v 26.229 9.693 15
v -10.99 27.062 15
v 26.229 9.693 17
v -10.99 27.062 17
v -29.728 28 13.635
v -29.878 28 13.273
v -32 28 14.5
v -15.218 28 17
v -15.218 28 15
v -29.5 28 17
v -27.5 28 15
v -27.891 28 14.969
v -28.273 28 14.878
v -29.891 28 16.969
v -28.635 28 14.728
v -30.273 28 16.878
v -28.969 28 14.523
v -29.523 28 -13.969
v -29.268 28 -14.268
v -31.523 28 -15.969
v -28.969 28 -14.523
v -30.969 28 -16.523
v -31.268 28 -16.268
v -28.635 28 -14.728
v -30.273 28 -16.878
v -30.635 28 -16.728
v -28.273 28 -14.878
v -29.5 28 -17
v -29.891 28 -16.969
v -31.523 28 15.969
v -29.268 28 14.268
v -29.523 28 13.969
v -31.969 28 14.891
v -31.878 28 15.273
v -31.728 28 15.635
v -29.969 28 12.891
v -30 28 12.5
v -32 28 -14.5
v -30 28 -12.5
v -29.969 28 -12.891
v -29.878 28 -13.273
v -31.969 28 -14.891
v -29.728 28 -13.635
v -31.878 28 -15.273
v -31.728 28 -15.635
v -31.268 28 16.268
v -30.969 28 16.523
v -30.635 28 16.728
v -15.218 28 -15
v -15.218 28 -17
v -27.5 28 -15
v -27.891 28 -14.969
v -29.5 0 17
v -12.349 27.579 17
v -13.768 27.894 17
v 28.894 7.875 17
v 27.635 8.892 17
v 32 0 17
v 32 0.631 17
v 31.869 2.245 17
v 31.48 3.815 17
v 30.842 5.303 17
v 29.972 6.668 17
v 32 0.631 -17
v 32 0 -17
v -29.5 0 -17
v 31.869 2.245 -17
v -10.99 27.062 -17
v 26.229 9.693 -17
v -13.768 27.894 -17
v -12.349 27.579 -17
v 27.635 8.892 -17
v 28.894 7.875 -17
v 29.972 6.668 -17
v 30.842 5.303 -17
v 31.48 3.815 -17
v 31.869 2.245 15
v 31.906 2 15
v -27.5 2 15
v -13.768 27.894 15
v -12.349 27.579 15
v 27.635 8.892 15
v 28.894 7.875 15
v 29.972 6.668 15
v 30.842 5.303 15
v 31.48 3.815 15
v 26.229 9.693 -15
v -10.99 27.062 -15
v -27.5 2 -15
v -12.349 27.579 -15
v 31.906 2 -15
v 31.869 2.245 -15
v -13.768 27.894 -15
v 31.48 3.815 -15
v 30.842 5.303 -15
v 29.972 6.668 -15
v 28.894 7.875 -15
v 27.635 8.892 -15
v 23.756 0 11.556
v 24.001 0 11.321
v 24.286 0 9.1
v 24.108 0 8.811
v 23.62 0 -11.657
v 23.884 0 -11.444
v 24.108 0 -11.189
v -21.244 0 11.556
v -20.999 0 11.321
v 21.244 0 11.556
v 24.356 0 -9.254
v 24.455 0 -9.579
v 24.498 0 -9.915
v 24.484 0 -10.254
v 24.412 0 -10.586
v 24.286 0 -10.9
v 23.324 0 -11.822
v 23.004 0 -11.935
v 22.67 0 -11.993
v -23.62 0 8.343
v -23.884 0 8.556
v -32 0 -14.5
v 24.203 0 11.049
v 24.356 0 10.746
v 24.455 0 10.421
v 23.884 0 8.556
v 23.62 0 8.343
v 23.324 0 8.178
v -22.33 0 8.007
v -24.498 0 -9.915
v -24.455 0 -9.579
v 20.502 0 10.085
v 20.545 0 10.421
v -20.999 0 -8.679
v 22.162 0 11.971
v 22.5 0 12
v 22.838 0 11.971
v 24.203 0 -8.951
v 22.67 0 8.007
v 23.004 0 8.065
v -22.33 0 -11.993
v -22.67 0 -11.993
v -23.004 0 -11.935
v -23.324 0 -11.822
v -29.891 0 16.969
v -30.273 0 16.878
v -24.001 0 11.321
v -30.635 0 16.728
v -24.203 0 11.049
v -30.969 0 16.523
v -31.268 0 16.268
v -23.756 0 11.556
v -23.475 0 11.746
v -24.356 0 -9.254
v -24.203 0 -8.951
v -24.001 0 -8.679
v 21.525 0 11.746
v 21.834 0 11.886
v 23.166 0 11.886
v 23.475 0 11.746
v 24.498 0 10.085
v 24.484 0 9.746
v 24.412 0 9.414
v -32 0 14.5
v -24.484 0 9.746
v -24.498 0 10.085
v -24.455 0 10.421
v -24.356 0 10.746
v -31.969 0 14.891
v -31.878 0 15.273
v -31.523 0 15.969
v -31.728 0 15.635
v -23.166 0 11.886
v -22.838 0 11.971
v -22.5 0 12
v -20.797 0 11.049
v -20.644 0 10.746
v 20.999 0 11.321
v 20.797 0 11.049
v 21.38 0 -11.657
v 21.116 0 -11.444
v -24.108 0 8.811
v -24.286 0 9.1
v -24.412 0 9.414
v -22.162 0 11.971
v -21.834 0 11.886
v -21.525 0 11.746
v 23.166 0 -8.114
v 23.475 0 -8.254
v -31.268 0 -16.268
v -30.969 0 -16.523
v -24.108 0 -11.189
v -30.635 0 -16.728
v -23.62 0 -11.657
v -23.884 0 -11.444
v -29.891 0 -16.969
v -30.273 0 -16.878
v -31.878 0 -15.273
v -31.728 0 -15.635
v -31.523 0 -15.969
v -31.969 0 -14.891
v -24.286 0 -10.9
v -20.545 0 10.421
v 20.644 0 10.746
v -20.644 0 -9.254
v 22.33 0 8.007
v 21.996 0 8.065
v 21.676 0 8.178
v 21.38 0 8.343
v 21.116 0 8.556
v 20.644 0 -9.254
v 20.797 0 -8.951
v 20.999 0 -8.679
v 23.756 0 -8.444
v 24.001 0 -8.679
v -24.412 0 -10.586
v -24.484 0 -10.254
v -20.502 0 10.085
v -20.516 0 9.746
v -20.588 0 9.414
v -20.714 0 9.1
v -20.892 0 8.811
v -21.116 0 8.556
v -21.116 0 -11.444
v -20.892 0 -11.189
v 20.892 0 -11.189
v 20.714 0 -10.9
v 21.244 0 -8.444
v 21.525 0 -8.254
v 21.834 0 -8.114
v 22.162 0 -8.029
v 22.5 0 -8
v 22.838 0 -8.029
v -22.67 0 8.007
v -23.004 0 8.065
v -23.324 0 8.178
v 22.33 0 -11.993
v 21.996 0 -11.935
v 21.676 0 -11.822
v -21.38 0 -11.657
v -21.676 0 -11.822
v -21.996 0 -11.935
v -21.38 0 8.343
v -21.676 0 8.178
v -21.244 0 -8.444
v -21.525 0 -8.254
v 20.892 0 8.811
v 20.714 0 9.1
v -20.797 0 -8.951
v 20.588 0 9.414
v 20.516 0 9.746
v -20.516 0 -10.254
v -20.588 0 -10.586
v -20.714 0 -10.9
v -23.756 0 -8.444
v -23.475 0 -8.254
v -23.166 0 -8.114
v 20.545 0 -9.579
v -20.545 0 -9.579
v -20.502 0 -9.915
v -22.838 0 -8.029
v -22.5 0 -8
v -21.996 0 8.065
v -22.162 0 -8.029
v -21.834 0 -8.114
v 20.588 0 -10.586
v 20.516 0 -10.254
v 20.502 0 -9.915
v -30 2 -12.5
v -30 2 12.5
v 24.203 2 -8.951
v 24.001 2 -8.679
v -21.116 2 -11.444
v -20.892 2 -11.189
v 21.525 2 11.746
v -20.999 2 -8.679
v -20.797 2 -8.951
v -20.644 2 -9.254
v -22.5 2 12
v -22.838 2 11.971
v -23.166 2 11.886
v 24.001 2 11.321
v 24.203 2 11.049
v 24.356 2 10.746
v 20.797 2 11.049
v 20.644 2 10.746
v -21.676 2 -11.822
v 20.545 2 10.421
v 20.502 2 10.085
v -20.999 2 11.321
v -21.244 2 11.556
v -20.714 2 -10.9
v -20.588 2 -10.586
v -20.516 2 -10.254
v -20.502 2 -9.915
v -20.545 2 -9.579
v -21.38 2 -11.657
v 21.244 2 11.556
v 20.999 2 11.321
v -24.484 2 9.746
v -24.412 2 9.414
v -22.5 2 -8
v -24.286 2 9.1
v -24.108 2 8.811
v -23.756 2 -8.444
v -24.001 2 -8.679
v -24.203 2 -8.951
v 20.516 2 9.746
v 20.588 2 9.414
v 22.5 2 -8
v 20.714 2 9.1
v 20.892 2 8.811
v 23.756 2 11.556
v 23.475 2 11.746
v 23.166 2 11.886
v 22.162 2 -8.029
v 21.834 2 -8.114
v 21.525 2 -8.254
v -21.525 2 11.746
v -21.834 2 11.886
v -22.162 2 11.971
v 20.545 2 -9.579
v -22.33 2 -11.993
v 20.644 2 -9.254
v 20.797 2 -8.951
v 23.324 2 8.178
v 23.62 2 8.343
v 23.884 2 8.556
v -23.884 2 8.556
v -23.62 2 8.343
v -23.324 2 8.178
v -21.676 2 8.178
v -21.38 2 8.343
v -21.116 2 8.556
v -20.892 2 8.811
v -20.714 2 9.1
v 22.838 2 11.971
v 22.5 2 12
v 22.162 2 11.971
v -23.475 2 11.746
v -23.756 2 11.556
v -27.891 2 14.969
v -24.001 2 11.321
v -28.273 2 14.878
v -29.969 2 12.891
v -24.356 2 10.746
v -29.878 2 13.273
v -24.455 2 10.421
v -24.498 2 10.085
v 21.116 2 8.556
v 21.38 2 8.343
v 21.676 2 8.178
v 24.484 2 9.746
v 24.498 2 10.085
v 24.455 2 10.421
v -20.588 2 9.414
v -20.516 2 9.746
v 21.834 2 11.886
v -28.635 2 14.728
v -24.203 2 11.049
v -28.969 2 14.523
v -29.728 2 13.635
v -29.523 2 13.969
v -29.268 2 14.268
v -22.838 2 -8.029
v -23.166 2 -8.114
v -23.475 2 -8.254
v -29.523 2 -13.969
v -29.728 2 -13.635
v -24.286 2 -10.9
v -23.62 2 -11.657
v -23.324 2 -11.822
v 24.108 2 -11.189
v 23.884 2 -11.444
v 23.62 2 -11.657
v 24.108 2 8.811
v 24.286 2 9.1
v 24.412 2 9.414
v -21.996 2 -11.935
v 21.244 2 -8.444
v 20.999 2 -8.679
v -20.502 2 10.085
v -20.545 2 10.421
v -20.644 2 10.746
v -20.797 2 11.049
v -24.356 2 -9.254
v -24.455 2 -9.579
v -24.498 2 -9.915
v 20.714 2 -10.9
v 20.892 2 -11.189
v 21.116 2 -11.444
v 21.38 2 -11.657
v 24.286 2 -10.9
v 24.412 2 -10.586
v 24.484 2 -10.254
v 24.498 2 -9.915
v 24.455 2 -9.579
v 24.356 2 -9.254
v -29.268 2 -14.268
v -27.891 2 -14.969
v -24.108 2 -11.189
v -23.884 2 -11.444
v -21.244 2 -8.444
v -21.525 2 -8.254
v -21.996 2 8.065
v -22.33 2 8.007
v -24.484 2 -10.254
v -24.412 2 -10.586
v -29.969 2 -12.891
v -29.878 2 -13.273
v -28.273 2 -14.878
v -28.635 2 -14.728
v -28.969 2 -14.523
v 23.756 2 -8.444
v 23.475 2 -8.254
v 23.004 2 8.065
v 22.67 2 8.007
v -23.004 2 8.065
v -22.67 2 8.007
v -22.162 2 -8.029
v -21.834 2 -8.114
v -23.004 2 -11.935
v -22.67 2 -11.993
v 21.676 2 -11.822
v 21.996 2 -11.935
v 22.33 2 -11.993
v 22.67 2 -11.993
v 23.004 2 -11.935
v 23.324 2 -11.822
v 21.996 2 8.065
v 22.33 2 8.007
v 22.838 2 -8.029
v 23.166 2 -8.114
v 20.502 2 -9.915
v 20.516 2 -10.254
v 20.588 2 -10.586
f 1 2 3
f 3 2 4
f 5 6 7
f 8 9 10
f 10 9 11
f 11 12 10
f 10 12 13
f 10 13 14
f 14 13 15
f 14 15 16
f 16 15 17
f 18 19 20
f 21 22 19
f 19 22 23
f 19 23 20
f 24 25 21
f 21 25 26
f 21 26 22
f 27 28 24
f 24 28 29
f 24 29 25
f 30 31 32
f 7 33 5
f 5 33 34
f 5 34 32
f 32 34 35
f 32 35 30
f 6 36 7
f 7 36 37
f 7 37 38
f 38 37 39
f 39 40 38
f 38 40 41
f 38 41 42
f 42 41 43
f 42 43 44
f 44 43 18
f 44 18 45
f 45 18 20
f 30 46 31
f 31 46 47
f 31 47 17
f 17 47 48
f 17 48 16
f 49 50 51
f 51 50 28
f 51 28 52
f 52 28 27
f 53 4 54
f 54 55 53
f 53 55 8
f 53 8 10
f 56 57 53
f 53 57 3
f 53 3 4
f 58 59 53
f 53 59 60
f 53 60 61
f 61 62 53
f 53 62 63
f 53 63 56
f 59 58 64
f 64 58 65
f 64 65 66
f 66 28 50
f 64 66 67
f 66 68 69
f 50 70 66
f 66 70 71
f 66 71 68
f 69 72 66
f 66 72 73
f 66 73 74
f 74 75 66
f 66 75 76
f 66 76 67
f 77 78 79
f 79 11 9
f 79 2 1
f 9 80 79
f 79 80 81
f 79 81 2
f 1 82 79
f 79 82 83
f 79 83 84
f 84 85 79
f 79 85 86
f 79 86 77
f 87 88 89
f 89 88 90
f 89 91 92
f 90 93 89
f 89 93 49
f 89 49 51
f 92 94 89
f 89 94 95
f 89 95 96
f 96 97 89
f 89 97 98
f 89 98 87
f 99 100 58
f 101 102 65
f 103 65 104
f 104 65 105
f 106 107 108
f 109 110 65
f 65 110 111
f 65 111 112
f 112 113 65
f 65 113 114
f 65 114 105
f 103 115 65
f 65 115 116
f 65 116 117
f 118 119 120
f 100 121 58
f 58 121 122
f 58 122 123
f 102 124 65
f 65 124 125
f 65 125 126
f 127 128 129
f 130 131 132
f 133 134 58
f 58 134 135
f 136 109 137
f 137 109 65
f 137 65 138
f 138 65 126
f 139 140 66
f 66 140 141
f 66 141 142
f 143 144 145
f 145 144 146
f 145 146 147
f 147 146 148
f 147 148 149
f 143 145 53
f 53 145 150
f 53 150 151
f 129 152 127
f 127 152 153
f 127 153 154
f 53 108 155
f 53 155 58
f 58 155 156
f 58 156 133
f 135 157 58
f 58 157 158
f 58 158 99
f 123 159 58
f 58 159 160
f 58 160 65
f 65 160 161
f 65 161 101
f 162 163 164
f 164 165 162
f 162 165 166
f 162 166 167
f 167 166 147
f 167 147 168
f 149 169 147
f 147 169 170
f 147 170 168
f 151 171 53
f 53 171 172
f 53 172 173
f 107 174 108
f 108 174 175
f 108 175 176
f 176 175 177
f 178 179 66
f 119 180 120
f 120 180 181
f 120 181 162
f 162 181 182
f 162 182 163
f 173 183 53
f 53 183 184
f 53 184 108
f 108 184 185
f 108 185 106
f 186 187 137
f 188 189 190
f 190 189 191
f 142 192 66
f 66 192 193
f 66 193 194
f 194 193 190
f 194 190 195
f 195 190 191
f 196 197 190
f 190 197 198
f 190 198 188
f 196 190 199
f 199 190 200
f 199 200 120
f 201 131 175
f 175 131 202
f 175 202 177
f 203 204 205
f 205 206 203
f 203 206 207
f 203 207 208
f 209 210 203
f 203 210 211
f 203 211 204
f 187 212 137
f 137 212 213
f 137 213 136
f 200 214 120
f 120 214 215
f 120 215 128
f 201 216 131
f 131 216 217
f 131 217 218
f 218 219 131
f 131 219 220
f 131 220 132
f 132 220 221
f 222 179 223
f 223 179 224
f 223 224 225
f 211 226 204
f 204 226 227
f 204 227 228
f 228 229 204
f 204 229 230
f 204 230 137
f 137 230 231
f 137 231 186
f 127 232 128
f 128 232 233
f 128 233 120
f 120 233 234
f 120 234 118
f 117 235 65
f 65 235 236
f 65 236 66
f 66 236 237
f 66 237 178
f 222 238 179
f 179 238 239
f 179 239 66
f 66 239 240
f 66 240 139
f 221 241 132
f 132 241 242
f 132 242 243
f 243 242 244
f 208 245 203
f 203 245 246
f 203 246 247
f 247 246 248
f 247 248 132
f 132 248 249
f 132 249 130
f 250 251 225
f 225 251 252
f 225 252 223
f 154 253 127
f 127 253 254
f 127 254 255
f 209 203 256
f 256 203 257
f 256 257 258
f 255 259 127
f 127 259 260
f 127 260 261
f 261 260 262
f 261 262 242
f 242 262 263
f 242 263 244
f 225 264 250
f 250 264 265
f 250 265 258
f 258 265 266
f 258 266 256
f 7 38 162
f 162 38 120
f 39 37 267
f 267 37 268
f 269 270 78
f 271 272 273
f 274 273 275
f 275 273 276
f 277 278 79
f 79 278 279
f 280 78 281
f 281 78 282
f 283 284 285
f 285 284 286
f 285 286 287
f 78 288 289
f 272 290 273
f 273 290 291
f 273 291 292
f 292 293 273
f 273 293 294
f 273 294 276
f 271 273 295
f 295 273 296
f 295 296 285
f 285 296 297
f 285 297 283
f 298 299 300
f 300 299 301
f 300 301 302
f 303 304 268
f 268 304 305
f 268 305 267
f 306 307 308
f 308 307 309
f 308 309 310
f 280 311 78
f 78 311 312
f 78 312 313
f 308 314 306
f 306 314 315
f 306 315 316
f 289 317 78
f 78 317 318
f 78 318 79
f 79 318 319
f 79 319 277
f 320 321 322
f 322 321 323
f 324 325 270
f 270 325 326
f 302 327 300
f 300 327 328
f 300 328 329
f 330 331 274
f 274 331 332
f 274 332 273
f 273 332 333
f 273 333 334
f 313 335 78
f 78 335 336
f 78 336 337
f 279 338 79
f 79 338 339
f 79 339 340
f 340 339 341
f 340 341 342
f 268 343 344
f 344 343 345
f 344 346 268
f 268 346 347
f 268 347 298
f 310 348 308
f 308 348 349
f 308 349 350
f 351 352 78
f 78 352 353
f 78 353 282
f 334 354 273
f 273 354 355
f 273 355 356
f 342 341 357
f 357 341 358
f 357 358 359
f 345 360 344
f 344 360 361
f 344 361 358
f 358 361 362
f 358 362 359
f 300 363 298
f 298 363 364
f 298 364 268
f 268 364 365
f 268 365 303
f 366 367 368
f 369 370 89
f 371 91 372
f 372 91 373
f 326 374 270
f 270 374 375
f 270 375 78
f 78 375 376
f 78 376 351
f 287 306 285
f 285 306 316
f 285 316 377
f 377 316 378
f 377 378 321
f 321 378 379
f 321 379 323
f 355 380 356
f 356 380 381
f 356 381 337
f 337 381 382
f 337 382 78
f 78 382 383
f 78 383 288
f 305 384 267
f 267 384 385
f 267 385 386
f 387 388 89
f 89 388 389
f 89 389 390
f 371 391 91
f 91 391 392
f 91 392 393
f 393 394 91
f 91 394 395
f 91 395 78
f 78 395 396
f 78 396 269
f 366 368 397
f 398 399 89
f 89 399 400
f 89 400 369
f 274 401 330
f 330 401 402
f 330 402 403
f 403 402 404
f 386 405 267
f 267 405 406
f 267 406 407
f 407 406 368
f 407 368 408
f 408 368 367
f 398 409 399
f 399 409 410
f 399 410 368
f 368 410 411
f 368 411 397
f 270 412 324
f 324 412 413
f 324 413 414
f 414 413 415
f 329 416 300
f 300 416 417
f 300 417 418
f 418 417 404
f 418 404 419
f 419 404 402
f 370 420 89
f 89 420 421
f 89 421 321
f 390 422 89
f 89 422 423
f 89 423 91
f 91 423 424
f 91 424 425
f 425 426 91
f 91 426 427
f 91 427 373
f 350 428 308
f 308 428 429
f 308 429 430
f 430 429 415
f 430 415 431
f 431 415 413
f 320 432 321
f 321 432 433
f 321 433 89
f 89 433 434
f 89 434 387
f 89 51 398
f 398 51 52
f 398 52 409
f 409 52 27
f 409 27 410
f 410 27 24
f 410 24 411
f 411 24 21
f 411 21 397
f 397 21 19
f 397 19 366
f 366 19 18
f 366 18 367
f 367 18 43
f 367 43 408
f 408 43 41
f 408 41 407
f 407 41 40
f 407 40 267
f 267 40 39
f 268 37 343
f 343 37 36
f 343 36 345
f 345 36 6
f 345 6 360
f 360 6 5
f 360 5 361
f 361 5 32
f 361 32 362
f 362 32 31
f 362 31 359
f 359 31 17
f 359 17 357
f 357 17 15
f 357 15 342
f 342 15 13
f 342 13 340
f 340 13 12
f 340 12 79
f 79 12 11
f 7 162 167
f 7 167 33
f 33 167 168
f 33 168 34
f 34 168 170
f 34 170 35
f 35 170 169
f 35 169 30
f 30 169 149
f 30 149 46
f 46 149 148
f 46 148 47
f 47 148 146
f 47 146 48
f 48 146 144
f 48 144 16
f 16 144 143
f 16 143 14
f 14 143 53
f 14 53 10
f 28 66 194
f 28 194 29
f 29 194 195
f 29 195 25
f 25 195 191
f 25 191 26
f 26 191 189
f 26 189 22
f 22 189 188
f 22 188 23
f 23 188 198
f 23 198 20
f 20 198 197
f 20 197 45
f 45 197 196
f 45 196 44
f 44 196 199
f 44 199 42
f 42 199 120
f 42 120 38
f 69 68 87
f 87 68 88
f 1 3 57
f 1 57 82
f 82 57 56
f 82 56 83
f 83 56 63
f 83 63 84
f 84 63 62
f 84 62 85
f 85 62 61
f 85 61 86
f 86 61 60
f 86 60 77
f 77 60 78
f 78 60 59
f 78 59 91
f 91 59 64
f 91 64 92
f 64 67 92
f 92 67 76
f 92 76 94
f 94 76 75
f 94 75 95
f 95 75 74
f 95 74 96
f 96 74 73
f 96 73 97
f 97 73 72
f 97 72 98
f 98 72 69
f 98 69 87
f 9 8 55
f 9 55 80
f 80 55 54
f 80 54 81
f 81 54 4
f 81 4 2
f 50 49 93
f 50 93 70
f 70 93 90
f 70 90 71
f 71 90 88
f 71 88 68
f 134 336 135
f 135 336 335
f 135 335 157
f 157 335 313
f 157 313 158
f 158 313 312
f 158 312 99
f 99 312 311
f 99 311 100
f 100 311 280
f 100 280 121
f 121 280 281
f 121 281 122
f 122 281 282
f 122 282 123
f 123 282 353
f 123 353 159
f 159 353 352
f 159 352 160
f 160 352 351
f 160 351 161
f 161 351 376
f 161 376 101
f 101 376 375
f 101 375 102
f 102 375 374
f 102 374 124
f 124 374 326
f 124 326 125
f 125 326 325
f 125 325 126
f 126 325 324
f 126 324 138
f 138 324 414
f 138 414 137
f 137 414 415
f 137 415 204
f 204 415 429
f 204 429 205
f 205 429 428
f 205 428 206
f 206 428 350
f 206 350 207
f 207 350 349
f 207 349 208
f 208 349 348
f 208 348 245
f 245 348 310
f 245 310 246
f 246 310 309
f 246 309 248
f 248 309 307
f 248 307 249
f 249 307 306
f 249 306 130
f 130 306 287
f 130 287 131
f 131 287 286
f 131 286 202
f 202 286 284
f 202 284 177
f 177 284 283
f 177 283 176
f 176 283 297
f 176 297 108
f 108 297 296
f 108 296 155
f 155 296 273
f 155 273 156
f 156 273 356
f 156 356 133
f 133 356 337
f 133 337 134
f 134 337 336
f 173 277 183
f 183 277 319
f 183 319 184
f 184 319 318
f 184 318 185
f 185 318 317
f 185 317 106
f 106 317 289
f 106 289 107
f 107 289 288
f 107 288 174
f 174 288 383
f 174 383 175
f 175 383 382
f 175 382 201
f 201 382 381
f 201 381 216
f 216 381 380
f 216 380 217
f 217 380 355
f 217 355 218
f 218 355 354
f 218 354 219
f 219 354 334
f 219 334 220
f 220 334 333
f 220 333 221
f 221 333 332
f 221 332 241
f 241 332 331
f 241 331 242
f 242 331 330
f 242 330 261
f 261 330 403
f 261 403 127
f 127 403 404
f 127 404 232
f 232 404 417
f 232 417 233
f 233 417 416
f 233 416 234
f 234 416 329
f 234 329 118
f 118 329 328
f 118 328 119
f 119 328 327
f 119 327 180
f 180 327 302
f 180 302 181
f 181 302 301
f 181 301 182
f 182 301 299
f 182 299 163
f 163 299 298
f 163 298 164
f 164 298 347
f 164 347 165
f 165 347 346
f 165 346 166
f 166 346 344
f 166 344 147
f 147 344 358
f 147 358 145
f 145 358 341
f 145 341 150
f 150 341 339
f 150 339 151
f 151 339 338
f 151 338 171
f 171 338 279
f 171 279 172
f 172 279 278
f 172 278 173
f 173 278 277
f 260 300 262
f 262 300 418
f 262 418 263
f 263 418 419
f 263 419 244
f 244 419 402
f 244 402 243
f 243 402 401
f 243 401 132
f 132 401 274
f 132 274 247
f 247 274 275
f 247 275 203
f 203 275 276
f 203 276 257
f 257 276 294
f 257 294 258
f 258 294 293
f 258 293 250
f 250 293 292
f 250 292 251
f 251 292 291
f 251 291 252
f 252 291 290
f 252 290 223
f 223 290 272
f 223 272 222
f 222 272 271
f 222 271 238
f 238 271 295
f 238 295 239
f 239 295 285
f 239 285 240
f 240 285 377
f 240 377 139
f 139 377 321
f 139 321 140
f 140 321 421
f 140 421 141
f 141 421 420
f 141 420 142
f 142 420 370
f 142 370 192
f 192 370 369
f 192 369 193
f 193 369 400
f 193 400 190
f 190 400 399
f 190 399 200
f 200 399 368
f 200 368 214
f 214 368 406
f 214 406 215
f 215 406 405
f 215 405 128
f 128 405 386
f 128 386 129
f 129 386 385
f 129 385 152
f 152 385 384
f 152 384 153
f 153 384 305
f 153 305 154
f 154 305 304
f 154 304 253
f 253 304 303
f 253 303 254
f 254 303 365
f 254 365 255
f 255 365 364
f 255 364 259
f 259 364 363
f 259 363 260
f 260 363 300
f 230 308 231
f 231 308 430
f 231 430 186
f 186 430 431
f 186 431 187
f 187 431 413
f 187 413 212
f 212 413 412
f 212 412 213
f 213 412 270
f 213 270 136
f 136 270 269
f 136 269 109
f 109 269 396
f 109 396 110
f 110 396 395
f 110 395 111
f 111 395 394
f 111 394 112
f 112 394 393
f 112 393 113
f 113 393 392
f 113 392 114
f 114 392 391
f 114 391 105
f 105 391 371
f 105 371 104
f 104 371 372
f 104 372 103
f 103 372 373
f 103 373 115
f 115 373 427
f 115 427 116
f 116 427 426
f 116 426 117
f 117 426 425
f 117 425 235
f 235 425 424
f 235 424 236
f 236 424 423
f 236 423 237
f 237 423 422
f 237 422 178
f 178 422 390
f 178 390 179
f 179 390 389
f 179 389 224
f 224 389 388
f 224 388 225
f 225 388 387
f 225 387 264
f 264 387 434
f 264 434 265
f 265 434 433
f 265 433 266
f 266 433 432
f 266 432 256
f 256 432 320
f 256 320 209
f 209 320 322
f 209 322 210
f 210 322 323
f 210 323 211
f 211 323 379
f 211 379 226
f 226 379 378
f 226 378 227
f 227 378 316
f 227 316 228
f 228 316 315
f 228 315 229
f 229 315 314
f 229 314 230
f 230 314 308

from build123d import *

# Parameters (mm, degrees)
SKETCH_1_W               = 64
SKETCH_1_H               = 34
SKETCH_1_W_2             = 60
SKETCH_1_H_2             = 30
EXTRUDE_1_DEPTH          = 28
SKETCH_1_2_W             = 60
SKETCH_1_2_H             = 30
EXTRUDE_1_2_DEPTH        = 2
FILLET_3_R               = 2.5
CUT_EXTRUDE_6_DEPTH      = 55.442630355
CUT_EXTRUDE_6_DEPTH_BACK = 55.442630355
FILLET_4_R               = 10
SKETCH_8_W               = 30
SKETCH_8_H               = 4.631369762
CUT_EXTRUDE_7_DEPTH      = 71.121323433
CUT_EXTRUDE_9_DEPTH      = 45.598206242
CUT_EXTRUDE_9_DEPTH_BACK = 45.598206242
SKETCH_9_R               = 2


with BuildPart() as part:
    # Эскиз1 → Extrude 1 (new body)
    with BuildSketch(Plane(origin=(0, 0, 0), x_dir=(1, 0, 0), z_dir=(0, 1, 0))):
        Rectangle(SKETCH_1_W, SKETCH_1_H)
        Rectangle(SKETCH_1_W_2, SKETCH_1_H_2, mode=Mode.SUBTRACT)
    extrude(amount=EXTRUDE_1_DEPTH)

    # Эскиз1<2> → Extrude 1 2 (add)
    with BuildSketch(Plane(origin=(0, 0, 0), x_dir=(1, 0, 0), z_dir=(0, 1, 0))):
        Rectangle(SKETCH_1_2_W, SKETCH_1_2_H)
    extrude(amount=EXTRUDE_1_2_DEPTH)

    # Скругление3
    fillet_3_edges = [part.edges().sort_by_distance(p)[0] for p in [
        (-30, 15, -15),
        (-30, 15, 15),
        (-32, 14, -17),
        (-32, 14, 17),
    ]]
    fillet(fillet_3_edges, radius=FILLET_3_R)

    # Эскиз3 → Вырез-Вытянуть6 (cut, two sides: drawn at the far end of the back side and taken through both)
    with BuildSketch(Plane.XY.offset(17).offset(-CUT_EXTRUDE_6_DEPTH_BACK)):
        Polygon((-13, 28), (32, 7), (32, 28), align=None)
    extrude(amount=CUT_EXTRUDE_6_DEPTH + CUT_EXTRUDE_6_DEPTH_BACK, mode=Mode.SUBTRACT)

    # Скругление4
    # the kernel refuses this fillet: 10 mm, written as the material it takes off along each edge
    with BuildSketch(Plane(origin=(32, 7, -32.921575595), x_dir=(0, -1, 0), z_dir=(0, 0, 1))) as fillet_4_piece_1:
        with BuildLine():
            CenterArc((FILLET_4_R * 0.636863023816, -FILLET_4_R), FILLET_4_R, 90, 64.983106522)
            Line((-FILLET_4_R * 0.269320116179, -FILLET_4_R * 0.577114534669), (0, 0))
            Line((0, 0), (FILLET_4_R * 0.636863023816, 0))
        make_face()
    extrude(amount=65.843151191, mode=Mode.SUBTRACT)
    with BuildSketch(Plane(origin=(-13, 28, 22.546233419), x_dir=(0.9061831399952657, -0.4228854653311234, 0), z_dir=(0, 0, -1)), Plane(origin=(-13, 28, -9.453766581), x_dir=(0.9061831399952657, -0.4228854653311234, 0), z_dir=(0, 0, -1))) as fillet_4_piece_2:
        with BuildLine():
            CenterArc((FILLET_4_R * 0.22184933675, FILLET_4_R), FILLET_4_R, 244.983106522, 25.016893478)
            Line((-FILLET_4_R * 0.201036128582, FILLET_4_R * 0.0938168600047), (0, 0))
            Line((0, 0), (FILLET_4_R * 0.22184933675, 0))
        make_face()
    extrude(amount=13.092466837, mode=Mode.SUBTRACT)

    # Эскиз8 → Вырез-Вытянуть7 (cut, through all)
    with BuildSketch(Plane.ZY.offset(-30)):
        with Locations((0, 4.315684881)):
            Rectangle(SKETCH_8_W, SKETCH_8_H)
    extrude(amount=-CUT_EXTRUDE_7_DEPTH, mode=Mode.SUBTRACT)

    # Эскиз9 → Вырез-Вытянуть9 (cut, two sides: drawn at the far end of the back side and taken through both)
    with BuildSketch(Plane(origin=(0, 2, 0), x_dir=(1, 0, 0), z_dir=(0, 1, 0)).offset(-CUT_EXTRUDE_9_DEPTH_BACK)):
        with Locations(Location((-22.5, -10, 0), (0, 0, 270))):
            Circle(SKETCH_9_R)
        with Locations(Location((-22.5, 10, 0), (0, 0, 270))):
            Circle(SKETCH_9_R)
        with Locations(Location((22.5, 10, 0), (0, 0, 270))):
            Circle(SKETCH_9_R)
        with Locations(Location((22.5, -10, 0), (0, 0, 270))):
            Circle(SKETCH_9_R)
    extrude(amount=CUT_EXTRUDE_9_DEPTH + CUT_EXTRUDE_9_DEPTH_BACK, mode=Mode.SUBTRACT)


solid = part.part
